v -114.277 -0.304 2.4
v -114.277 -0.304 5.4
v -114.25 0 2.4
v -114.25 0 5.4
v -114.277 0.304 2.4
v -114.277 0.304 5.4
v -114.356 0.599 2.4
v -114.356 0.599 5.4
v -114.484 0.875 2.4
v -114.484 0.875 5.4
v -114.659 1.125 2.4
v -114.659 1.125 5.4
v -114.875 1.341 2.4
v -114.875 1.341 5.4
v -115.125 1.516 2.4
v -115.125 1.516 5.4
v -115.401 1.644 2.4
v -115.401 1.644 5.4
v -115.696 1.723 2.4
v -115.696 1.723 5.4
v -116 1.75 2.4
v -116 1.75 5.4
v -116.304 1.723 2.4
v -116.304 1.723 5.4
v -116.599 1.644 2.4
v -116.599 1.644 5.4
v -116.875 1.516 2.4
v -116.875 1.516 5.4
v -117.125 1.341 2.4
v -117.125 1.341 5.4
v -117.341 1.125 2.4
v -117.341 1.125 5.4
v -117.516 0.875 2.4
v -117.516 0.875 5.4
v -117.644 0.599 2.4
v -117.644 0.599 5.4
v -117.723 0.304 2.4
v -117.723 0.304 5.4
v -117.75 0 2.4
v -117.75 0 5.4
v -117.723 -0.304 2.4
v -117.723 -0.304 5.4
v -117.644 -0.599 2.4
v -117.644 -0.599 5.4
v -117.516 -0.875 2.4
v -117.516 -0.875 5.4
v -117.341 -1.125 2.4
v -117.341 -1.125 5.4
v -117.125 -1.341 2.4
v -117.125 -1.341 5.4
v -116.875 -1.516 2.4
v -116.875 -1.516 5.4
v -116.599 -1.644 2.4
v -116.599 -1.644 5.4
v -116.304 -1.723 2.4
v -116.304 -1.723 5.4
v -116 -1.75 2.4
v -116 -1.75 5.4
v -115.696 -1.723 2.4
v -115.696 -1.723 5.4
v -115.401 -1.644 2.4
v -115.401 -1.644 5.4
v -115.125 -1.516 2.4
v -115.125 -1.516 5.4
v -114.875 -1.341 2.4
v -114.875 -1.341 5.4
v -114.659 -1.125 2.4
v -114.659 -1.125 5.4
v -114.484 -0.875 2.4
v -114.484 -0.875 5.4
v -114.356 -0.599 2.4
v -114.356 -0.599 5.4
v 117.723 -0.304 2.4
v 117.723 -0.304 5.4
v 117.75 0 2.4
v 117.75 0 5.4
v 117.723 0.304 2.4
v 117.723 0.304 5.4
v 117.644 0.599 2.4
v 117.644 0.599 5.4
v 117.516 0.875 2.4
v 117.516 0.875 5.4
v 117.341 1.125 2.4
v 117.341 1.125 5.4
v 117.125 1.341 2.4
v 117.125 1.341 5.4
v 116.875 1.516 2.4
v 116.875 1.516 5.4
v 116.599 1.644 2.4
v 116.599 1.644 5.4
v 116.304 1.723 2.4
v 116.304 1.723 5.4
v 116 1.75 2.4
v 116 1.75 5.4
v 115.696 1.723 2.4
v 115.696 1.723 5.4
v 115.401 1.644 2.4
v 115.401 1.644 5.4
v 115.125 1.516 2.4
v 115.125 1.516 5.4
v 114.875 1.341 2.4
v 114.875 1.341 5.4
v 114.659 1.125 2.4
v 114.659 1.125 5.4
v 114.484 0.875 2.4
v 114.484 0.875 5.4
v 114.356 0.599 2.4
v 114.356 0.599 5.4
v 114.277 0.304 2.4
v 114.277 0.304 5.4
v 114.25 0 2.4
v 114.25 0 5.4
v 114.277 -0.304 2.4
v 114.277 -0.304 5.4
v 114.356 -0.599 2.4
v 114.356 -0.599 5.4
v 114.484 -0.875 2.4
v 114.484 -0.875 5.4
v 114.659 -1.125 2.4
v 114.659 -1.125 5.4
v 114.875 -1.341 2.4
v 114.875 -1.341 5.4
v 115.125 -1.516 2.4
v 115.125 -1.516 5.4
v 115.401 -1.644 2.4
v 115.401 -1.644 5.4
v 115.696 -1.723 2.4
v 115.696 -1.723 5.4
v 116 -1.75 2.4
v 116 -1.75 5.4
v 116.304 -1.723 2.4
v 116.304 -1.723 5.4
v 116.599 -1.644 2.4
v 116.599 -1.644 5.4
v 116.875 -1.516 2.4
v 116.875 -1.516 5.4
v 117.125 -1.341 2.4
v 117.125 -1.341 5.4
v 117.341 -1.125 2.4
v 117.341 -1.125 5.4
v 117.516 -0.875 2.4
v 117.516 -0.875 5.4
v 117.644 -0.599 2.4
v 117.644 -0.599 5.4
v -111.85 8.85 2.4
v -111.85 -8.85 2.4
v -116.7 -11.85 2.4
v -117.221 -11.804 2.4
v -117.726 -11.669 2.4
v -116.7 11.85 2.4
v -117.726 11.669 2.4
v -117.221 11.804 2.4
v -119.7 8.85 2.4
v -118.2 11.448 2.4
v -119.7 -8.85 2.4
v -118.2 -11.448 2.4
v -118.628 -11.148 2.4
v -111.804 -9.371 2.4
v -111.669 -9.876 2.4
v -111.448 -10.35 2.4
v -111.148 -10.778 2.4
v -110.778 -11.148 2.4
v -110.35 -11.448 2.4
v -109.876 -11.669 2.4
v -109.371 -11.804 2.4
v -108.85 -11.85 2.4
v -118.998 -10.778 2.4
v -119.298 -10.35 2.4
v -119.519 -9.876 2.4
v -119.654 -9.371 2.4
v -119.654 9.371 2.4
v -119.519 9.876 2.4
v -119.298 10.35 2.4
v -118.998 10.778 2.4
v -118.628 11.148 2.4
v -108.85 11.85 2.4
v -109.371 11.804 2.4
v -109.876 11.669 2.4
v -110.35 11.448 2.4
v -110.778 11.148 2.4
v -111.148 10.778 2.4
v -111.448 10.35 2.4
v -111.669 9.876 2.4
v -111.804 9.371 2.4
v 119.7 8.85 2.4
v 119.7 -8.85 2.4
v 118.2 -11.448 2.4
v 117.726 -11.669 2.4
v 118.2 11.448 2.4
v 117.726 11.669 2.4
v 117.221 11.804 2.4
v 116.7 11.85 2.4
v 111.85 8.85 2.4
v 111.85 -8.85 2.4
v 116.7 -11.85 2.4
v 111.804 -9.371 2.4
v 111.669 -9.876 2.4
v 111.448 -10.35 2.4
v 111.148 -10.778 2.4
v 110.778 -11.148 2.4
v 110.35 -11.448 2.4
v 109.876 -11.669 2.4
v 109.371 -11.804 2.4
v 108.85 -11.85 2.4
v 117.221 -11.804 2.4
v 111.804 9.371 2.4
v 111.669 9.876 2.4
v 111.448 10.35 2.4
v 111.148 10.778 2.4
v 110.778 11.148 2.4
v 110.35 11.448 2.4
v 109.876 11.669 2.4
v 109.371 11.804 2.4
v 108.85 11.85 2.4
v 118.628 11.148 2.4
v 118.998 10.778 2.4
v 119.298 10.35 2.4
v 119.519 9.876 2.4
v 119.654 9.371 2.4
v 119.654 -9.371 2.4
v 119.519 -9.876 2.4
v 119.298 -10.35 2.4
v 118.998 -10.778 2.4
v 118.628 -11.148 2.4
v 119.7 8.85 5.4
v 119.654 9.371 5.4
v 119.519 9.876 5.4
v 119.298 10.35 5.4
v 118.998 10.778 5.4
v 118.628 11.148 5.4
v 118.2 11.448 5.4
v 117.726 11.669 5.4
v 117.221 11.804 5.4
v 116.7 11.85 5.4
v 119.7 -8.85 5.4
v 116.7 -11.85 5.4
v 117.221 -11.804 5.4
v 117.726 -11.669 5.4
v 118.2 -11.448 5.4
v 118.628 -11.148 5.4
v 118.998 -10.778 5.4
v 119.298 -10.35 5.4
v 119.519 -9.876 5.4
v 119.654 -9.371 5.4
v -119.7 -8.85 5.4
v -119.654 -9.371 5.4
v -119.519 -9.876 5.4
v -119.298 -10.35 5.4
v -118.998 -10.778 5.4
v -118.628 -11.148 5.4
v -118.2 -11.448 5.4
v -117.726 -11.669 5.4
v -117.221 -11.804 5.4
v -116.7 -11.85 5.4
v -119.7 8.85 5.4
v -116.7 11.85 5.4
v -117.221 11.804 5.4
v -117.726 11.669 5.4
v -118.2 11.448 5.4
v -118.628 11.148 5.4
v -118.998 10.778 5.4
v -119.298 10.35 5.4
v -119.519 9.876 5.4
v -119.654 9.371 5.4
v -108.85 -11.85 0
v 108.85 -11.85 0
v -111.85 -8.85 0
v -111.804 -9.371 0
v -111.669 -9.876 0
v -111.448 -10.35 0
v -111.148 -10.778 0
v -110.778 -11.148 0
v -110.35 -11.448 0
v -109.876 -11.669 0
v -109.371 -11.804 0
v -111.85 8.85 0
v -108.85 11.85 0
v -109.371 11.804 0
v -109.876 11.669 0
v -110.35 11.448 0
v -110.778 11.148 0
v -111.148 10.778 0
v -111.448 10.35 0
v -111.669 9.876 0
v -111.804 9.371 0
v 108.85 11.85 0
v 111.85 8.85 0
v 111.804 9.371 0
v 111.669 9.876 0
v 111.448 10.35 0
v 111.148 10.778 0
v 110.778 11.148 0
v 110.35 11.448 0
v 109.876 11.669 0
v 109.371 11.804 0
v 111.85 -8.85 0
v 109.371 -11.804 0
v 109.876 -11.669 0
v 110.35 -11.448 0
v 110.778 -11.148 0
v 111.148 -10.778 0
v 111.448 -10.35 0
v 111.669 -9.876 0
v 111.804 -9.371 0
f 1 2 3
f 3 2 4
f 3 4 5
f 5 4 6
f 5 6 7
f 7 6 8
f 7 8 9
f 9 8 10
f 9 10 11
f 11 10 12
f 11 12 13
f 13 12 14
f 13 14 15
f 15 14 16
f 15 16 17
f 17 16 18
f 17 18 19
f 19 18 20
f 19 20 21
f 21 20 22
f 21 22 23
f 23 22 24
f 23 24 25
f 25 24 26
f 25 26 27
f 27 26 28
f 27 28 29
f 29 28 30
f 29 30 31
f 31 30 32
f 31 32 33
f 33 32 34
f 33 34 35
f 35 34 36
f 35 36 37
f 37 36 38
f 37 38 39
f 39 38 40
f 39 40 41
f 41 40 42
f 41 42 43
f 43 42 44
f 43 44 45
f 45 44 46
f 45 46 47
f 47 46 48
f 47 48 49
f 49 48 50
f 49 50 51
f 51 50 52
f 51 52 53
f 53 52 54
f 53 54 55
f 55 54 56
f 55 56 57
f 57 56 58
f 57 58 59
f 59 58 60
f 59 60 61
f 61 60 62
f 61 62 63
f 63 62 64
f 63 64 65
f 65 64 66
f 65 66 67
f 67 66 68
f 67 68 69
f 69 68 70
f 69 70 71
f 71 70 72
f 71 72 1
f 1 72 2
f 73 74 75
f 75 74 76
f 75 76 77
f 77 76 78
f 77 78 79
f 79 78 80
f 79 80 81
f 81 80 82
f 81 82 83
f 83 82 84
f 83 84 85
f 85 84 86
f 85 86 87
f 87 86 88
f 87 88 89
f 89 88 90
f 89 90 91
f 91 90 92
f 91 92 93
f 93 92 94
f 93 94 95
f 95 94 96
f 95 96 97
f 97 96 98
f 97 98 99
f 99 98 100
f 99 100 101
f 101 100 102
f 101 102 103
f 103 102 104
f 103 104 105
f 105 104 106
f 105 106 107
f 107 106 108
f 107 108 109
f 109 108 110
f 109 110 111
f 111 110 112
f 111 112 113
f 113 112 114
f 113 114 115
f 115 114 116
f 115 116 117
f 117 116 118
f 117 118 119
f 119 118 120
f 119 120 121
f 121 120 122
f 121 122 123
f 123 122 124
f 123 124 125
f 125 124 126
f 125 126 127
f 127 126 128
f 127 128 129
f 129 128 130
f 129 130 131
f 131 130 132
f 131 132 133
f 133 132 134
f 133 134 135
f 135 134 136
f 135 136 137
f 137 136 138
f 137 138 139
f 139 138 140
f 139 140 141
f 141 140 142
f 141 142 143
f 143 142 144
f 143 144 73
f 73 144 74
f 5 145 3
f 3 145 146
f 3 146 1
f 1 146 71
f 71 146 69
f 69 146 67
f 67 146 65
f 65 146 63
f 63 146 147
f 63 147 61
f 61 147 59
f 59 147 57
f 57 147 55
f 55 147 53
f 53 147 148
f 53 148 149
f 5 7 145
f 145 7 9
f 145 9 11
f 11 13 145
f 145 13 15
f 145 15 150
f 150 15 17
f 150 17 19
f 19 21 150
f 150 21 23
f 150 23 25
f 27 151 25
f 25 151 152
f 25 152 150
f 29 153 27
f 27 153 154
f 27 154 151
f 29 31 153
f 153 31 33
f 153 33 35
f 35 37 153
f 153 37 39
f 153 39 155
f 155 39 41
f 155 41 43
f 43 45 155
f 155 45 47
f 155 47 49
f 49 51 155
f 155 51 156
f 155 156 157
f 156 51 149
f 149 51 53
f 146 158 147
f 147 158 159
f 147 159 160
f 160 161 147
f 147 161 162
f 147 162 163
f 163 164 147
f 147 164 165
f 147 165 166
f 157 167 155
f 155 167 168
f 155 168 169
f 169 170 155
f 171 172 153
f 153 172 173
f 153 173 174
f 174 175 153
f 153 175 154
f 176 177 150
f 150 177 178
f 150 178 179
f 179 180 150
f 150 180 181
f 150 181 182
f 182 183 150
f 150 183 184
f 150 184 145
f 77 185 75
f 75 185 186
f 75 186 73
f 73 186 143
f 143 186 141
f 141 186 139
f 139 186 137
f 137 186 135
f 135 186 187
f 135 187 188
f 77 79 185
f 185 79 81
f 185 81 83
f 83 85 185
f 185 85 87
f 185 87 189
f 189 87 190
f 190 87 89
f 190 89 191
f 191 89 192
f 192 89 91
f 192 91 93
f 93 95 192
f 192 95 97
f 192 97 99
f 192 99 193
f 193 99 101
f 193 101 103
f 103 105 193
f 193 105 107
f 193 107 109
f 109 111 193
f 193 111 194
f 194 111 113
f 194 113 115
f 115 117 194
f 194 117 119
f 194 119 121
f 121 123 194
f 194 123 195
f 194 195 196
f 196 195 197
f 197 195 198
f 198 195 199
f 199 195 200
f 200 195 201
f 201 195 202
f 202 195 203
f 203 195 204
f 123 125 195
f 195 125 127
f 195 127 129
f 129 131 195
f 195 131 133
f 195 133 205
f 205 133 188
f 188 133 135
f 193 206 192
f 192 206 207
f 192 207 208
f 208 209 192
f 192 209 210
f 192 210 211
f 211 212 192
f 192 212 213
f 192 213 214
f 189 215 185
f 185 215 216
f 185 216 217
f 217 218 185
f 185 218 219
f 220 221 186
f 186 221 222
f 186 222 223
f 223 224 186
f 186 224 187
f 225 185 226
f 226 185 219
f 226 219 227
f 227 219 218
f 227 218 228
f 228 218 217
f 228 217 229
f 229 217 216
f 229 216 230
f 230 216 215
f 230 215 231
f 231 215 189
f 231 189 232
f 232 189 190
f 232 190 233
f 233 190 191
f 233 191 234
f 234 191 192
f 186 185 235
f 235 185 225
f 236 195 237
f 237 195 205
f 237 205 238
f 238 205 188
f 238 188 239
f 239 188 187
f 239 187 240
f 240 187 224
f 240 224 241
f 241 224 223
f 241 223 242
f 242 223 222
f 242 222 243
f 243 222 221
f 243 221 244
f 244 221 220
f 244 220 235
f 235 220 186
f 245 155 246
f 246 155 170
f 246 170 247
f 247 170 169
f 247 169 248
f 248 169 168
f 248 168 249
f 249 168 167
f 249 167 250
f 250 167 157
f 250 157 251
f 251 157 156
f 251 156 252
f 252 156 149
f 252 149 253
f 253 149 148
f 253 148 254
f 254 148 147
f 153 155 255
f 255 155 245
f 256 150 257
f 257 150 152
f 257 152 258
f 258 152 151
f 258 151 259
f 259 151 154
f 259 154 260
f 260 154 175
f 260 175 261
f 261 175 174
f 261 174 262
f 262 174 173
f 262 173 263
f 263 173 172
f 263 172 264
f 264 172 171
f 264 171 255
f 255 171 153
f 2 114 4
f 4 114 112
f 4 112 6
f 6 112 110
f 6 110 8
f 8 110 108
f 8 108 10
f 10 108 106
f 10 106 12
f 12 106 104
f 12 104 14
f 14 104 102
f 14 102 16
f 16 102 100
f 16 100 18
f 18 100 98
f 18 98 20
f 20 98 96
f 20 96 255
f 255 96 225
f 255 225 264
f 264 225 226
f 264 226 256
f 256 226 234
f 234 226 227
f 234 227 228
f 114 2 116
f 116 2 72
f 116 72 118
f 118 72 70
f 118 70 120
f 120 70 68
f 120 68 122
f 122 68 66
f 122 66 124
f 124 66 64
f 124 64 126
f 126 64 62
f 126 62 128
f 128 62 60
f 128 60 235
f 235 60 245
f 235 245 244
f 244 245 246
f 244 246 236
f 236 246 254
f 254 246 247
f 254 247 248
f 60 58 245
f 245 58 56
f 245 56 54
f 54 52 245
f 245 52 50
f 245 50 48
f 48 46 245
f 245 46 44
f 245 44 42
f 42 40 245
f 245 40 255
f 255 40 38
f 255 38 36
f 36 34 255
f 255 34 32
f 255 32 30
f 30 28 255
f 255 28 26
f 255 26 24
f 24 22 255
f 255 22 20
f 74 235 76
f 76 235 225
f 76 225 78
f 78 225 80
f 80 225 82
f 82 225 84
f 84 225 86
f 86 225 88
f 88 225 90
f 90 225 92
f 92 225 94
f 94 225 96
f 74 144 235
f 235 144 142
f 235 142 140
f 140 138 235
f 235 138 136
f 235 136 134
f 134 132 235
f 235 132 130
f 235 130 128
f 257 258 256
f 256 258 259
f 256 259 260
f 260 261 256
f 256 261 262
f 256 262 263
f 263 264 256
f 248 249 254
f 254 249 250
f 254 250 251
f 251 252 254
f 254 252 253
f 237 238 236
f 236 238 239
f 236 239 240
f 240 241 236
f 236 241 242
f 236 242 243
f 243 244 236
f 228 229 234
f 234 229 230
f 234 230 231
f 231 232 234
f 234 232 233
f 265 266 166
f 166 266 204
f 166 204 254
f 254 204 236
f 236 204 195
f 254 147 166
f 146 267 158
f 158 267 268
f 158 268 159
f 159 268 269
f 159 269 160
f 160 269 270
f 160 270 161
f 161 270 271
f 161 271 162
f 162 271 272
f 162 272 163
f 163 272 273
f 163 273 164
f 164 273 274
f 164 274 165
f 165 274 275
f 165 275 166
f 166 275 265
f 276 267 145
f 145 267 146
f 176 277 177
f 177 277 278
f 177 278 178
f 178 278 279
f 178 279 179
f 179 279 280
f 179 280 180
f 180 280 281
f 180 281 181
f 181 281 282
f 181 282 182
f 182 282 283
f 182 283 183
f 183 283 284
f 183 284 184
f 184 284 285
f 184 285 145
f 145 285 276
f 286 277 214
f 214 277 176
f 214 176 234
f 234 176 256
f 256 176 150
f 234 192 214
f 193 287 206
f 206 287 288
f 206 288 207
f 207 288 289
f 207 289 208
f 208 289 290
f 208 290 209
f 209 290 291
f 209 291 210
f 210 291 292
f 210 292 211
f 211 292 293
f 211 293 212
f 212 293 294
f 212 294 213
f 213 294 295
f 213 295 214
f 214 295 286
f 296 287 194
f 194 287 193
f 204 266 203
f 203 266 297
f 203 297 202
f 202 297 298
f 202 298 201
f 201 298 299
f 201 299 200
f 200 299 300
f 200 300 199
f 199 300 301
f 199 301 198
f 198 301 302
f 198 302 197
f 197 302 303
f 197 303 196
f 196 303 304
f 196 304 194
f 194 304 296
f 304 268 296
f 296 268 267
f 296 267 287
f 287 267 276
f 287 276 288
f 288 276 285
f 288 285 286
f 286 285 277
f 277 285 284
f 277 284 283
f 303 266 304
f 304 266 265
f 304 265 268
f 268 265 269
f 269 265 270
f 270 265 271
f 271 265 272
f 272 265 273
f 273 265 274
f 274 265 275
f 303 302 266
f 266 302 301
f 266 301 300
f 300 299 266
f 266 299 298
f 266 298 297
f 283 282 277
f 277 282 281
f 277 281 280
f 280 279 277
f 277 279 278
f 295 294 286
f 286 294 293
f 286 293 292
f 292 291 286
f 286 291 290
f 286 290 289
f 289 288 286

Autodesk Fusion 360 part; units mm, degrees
sketch "Sketch1" plane through (0, 0, 0) normal (0, 0, 1) x (1, 0, 0)
  circle A0 centre (-108.85, 8.85) radius 3
  circle A1 centre (-108.85, -8.85) radius 3
  circle A2 centre (108.85, 8.85) radius 3
  circle A3 centre (108.85, -8.85) radius 3
  line L0 (-128.9727, 0) -> (128.9727, 0) construction
  line L1 (0, 49.8209) -> (0, -49.8209) construction
  line L2 (-108.85, 11.85) -> (108.85, 11.85)
  line L3 (111.85, 8.85) -> (111.85, -8.85)
  line L4 (108.85, -11.85) -> (-108.85, -11.85)
  line L5 (-111.85, -8.85) -> (-111.85, 8.85)
  dimension "d1" = 6
  dimension "d2" = 6
  dimension "d3" = 6
  dimension "d4" = 6
  dimension "d5" = 17.7
  dimension "d6" = 217.7
  dimension "d50" = 23.7
  dimension "d51" = 223.7
extrude "Extrude1" add sketch "Sketch1" along normal blind 2.4
sketch "Sketch2" plane through (0, 0, 2.4) normal (0, 0, 1) x (-1, 0, 0)
  arc A0 (-108.85, 11.85) -> (-111.85, 8.85) centre (-108.85, 8.85) ccw
  line L0 (-111.85, 8.85) -> (-111.85, -8.85)
  arc A1 (-111.85, -8.85) -> (-108.85, -11.85) centre (-108.85, -8.85) ccw
  line L1 (-108.85, -11.85) -> (108.85, -11.85)
  arc A2 (108.85, -11.85) -> (111.85, -8.85) centre (108.85, -8.85) ccw
  line L2 (111.85, -8.85) -> (111.85, 8.85)
  arc A3 (111.85, 8.85) -> (108.85, 11.85) centre (108.85, 8.85) ccw
  line L3 (108.85, 11.85) -> (-108.85, 11.85)
  line L4 (150.244, 0) -> (144.5168, 0)
  line L5 (144.5168, 0) -> (-144.5168, 0) construction
  line L6 (0, -32.2256) -> (0, 32.2256) construction
  circle A4 centre (116.7, -8.85) radius 3
  circle A5 centre (116.7, 8.85) radius 3
  circle A6 centre (-116.7, -8.85) radius 3
  circle A7 centre (-116.7, 8.85) radius 3
  circle A8 centre (108.85, -8.85) radius 3
  circle A9 centre (108.85, 8.85) radius 3
  circle A10 centre (-108.85, -8.85) radius 3
  circle A11 centre (-108.85, 8.85) radius 3
  line L7 (119.7, -8.85) -> (119.7, 8.85)
  line L8 (116.7, 11.85) -> (-116.7, 11.85)
  line L9 (-119.7, 8.85) -> (-119.7, -8.85)
  line L10 (-116.7, -11.85) -> (-115.6655, -11.85)
  line L11 (-115.6655, -11.85) -> (116.7, -11.85)
  dimension "d9" = 6
  dimension "d10" = 6
  dimension "d11" = 6
  dimension "d12" = 6
  dimension "d13" = 6
  dimension "d14" = 6
  dimension "d15" = 6
  dimension "d16" = 6
  dimension "d18" = 7.85
extrude "Extrude2" add sketch "Sketch2" along normal blind 3
sketch "Sketch3" plane through (0, 0, 5.4) normal (0, 0, 1) x (-1, 0, 0)
  line L0 (-116.7, -11.85) -> (116.7, -11.85)
  arc A0 (116.7, -11.85) -> (119.7, -8.85) centre (116.7, -8.85) ccw
  line L1 (119.7, -8.85) -> (119.7, 8.85)
  arc A1 (119.7, 8.85) -> (116.7, 11.85) centre (116.7, 8.85) ccw
  line L2 (116.7, 11.85) -> (-116.7, 11.85)
  arc A2 (-116.7, 11.85) -> (-119.7, 8.85) centre (-116.7, 8.85) ccw
  line L3 (-119.7, 8.85) -> (-119.7, -8.85)
  arc A3 (-119.7, -8.85) -> (-116.7, -11.85) centre (-116.7, -8.85) ccw
  circle A4 centre (116, 0) radius 1.75
  circle A5 centre (-116, 0) radius 1.75
  line L4 (0, -34.4653) -> (0, -31.8477)
  line L5 (0, -31.8477) -> (0, 31.8477) construction
  dimension "d21" = 3.5
  dimension "d22" = 3.5
  dimension "d23" = 11.85
  dimension "d24" = 3.7
  dimension "d52" = 231.7
extrude "Extrude3" cut sketch "Sketch3" against normal blind 6 contours A4 | A5
equation "d2 = d1"
equation "d3 = d1"
equation "d4 = d1"
equation "d10 = d9"
equation "d11 = d9"
equation "d12 = d9"
equation "d14 = d13"
equation "d15 = d13"
equation "d16 = d13"
equation "d22 = d21"
